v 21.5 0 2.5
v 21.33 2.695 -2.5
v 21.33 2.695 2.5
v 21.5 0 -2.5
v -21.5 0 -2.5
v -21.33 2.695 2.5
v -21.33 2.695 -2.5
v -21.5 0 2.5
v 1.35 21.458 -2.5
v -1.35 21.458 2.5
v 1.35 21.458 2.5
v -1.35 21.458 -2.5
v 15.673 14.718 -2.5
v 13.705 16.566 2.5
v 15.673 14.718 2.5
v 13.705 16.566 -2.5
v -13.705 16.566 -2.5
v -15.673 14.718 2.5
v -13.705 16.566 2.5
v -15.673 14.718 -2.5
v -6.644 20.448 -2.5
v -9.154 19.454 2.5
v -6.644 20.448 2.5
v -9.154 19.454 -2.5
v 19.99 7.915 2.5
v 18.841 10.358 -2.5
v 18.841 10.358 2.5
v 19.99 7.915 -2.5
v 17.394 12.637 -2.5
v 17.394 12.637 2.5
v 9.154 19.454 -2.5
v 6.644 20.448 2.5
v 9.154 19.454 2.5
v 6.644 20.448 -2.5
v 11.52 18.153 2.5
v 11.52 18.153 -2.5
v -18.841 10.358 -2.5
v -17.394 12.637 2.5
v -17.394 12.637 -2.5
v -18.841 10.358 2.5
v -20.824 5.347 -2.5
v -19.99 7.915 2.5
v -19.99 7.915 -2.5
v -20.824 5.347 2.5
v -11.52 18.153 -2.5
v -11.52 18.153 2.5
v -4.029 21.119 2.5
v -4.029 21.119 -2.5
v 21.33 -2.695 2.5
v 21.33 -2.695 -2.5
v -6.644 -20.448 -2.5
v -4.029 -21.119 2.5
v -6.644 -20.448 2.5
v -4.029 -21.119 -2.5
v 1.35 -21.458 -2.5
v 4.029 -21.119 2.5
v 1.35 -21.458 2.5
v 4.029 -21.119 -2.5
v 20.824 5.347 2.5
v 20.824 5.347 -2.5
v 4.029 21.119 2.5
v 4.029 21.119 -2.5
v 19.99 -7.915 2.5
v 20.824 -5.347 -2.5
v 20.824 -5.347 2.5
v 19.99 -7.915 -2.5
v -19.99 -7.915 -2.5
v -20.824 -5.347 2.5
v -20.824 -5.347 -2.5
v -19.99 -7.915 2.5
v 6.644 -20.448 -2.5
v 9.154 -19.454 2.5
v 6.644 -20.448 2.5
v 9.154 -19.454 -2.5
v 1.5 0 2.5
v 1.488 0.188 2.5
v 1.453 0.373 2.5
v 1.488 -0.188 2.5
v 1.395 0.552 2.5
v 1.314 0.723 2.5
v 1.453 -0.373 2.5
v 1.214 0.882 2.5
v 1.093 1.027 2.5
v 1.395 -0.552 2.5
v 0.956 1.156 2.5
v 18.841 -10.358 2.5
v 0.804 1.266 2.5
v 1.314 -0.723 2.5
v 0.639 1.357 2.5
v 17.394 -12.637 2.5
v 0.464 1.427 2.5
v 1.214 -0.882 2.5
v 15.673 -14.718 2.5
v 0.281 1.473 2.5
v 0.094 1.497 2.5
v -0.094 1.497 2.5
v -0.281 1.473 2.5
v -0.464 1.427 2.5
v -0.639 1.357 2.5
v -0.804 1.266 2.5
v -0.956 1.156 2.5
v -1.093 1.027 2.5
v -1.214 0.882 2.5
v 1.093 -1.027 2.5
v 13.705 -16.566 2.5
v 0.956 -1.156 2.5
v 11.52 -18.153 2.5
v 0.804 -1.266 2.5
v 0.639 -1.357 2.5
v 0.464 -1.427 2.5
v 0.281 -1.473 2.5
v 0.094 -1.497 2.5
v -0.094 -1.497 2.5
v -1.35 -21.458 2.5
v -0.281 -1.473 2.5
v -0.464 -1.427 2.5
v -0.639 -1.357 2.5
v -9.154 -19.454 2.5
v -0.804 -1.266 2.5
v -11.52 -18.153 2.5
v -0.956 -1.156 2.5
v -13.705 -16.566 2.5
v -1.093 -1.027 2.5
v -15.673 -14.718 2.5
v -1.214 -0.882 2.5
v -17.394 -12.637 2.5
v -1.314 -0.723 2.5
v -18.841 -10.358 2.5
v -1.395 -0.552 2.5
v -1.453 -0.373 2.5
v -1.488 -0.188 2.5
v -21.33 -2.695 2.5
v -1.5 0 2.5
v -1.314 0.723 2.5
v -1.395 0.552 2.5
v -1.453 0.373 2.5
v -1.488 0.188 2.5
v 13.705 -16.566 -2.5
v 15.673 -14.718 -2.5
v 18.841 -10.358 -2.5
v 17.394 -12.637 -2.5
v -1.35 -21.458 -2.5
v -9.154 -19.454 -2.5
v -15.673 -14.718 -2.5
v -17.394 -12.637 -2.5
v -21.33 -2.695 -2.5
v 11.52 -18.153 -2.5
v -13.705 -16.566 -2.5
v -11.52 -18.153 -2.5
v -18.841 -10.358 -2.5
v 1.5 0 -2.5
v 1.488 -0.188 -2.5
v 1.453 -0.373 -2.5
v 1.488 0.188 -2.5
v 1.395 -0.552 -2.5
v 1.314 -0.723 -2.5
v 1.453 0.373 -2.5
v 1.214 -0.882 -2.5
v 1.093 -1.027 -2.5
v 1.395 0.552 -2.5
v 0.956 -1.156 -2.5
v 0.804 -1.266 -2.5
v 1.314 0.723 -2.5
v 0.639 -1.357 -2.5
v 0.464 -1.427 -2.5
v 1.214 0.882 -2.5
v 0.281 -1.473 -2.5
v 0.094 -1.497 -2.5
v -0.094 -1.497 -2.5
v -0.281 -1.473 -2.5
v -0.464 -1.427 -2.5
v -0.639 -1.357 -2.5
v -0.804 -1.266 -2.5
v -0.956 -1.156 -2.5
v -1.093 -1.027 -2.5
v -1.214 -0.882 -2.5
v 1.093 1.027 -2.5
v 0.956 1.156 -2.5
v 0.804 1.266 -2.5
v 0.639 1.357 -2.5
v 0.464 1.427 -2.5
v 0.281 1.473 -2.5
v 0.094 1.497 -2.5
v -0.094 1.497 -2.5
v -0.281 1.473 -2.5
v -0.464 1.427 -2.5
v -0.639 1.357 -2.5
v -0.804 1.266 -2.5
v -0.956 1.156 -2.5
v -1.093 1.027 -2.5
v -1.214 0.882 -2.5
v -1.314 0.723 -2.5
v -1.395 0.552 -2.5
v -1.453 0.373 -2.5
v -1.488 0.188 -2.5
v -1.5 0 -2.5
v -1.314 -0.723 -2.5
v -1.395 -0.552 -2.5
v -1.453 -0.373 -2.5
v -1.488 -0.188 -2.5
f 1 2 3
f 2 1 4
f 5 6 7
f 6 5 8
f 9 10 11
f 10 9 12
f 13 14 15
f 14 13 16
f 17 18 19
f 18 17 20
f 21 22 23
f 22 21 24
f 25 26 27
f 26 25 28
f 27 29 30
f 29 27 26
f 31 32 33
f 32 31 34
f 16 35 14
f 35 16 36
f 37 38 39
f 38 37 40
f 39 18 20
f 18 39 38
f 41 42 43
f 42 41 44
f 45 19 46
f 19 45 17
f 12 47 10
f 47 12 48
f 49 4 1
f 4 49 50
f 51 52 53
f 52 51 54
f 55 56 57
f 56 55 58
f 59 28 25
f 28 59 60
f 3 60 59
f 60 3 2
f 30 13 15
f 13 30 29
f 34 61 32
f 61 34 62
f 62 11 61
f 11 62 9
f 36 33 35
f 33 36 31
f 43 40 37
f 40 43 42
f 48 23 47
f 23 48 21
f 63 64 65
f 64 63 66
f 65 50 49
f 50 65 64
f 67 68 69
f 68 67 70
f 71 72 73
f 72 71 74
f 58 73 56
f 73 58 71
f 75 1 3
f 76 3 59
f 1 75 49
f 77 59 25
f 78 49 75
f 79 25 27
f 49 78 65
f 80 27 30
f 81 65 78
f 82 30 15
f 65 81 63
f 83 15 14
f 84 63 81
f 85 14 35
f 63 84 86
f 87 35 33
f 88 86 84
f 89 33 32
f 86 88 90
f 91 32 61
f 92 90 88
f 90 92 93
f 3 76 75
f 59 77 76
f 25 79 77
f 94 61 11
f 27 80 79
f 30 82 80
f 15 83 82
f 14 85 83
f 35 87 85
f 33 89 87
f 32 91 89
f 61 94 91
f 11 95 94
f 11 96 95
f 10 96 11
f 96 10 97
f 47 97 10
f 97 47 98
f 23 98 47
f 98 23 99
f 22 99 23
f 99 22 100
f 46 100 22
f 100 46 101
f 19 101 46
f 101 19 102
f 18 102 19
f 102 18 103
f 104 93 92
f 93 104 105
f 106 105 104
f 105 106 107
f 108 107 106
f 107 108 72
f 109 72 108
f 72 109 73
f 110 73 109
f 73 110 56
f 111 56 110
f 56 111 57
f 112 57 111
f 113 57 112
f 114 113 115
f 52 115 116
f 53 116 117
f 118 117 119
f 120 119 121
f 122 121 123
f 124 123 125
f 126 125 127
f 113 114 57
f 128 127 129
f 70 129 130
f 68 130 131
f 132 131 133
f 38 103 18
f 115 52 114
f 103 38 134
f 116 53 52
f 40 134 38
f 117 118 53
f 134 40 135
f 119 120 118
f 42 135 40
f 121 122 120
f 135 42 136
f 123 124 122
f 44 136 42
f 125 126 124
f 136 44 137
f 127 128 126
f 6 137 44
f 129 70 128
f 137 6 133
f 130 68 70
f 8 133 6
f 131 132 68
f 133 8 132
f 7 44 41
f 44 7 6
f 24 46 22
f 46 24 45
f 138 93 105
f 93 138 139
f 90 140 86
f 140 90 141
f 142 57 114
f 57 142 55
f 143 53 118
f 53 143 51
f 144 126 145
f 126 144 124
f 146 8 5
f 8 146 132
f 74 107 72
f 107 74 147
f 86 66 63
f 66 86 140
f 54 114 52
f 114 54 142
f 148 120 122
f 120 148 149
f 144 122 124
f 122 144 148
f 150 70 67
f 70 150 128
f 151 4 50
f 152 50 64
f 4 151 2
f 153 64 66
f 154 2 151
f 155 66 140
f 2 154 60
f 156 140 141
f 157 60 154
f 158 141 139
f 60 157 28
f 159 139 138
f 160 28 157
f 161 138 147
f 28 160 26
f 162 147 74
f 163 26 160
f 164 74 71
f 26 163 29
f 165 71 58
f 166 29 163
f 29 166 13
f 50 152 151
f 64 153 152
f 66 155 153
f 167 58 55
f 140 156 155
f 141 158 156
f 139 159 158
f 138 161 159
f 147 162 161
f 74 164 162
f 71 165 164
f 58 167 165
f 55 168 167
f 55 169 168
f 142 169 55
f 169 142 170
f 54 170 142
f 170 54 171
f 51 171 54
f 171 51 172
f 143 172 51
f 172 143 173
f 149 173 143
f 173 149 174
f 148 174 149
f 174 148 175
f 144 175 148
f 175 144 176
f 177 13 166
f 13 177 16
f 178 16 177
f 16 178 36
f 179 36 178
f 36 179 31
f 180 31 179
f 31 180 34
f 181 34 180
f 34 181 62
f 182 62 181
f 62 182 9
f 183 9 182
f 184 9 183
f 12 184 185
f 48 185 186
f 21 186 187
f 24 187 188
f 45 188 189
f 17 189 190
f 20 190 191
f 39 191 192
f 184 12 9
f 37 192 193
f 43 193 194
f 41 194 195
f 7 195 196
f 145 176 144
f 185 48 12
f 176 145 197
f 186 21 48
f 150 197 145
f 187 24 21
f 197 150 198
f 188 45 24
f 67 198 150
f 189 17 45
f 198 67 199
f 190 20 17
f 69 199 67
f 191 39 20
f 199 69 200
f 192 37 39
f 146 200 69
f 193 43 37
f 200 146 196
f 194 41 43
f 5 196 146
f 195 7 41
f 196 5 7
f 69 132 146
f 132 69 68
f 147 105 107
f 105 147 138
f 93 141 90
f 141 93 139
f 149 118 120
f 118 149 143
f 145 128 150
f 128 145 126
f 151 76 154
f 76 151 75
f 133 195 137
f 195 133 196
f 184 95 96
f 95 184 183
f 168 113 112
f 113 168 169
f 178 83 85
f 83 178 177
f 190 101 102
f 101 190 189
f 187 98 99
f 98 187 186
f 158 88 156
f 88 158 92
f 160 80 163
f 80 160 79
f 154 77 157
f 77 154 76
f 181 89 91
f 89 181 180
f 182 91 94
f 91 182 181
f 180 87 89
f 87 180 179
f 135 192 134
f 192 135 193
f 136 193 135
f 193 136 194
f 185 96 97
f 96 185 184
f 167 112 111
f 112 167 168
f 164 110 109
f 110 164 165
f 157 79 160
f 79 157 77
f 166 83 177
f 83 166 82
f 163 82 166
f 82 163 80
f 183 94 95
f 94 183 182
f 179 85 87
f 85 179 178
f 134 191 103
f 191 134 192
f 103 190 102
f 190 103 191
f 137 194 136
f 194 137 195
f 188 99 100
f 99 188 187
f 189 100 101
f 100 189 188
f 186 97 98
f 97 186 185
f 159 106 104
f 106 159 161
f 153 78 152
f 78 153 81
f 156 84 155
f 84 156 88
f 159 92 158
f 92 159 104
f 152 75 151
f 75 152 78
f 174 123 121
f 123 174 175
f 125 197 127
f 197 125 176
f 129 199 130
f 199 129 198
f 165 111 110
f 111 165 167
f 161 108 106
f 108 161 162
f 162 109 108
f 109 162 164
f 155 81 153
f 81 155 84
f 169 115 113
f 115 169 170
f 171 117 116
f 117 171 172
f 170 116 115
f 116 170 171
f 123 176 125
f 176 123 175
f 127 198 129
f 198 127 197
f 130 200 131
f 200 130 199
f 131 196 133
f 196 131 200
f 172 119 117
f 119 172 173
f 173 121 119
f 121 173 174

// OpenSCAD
$fn = 50;


difference() {
	union() {
		translate(v = [0, 0, -2.5000000000]) {
			cylinder(h = 5, r = 21.5000000000);
		}
	}
	union() {
		translate(v = [0, 0, -100.0000000000]) {
			cylinder(h = 200, r = 1.5000000000);
		}
	}
}
